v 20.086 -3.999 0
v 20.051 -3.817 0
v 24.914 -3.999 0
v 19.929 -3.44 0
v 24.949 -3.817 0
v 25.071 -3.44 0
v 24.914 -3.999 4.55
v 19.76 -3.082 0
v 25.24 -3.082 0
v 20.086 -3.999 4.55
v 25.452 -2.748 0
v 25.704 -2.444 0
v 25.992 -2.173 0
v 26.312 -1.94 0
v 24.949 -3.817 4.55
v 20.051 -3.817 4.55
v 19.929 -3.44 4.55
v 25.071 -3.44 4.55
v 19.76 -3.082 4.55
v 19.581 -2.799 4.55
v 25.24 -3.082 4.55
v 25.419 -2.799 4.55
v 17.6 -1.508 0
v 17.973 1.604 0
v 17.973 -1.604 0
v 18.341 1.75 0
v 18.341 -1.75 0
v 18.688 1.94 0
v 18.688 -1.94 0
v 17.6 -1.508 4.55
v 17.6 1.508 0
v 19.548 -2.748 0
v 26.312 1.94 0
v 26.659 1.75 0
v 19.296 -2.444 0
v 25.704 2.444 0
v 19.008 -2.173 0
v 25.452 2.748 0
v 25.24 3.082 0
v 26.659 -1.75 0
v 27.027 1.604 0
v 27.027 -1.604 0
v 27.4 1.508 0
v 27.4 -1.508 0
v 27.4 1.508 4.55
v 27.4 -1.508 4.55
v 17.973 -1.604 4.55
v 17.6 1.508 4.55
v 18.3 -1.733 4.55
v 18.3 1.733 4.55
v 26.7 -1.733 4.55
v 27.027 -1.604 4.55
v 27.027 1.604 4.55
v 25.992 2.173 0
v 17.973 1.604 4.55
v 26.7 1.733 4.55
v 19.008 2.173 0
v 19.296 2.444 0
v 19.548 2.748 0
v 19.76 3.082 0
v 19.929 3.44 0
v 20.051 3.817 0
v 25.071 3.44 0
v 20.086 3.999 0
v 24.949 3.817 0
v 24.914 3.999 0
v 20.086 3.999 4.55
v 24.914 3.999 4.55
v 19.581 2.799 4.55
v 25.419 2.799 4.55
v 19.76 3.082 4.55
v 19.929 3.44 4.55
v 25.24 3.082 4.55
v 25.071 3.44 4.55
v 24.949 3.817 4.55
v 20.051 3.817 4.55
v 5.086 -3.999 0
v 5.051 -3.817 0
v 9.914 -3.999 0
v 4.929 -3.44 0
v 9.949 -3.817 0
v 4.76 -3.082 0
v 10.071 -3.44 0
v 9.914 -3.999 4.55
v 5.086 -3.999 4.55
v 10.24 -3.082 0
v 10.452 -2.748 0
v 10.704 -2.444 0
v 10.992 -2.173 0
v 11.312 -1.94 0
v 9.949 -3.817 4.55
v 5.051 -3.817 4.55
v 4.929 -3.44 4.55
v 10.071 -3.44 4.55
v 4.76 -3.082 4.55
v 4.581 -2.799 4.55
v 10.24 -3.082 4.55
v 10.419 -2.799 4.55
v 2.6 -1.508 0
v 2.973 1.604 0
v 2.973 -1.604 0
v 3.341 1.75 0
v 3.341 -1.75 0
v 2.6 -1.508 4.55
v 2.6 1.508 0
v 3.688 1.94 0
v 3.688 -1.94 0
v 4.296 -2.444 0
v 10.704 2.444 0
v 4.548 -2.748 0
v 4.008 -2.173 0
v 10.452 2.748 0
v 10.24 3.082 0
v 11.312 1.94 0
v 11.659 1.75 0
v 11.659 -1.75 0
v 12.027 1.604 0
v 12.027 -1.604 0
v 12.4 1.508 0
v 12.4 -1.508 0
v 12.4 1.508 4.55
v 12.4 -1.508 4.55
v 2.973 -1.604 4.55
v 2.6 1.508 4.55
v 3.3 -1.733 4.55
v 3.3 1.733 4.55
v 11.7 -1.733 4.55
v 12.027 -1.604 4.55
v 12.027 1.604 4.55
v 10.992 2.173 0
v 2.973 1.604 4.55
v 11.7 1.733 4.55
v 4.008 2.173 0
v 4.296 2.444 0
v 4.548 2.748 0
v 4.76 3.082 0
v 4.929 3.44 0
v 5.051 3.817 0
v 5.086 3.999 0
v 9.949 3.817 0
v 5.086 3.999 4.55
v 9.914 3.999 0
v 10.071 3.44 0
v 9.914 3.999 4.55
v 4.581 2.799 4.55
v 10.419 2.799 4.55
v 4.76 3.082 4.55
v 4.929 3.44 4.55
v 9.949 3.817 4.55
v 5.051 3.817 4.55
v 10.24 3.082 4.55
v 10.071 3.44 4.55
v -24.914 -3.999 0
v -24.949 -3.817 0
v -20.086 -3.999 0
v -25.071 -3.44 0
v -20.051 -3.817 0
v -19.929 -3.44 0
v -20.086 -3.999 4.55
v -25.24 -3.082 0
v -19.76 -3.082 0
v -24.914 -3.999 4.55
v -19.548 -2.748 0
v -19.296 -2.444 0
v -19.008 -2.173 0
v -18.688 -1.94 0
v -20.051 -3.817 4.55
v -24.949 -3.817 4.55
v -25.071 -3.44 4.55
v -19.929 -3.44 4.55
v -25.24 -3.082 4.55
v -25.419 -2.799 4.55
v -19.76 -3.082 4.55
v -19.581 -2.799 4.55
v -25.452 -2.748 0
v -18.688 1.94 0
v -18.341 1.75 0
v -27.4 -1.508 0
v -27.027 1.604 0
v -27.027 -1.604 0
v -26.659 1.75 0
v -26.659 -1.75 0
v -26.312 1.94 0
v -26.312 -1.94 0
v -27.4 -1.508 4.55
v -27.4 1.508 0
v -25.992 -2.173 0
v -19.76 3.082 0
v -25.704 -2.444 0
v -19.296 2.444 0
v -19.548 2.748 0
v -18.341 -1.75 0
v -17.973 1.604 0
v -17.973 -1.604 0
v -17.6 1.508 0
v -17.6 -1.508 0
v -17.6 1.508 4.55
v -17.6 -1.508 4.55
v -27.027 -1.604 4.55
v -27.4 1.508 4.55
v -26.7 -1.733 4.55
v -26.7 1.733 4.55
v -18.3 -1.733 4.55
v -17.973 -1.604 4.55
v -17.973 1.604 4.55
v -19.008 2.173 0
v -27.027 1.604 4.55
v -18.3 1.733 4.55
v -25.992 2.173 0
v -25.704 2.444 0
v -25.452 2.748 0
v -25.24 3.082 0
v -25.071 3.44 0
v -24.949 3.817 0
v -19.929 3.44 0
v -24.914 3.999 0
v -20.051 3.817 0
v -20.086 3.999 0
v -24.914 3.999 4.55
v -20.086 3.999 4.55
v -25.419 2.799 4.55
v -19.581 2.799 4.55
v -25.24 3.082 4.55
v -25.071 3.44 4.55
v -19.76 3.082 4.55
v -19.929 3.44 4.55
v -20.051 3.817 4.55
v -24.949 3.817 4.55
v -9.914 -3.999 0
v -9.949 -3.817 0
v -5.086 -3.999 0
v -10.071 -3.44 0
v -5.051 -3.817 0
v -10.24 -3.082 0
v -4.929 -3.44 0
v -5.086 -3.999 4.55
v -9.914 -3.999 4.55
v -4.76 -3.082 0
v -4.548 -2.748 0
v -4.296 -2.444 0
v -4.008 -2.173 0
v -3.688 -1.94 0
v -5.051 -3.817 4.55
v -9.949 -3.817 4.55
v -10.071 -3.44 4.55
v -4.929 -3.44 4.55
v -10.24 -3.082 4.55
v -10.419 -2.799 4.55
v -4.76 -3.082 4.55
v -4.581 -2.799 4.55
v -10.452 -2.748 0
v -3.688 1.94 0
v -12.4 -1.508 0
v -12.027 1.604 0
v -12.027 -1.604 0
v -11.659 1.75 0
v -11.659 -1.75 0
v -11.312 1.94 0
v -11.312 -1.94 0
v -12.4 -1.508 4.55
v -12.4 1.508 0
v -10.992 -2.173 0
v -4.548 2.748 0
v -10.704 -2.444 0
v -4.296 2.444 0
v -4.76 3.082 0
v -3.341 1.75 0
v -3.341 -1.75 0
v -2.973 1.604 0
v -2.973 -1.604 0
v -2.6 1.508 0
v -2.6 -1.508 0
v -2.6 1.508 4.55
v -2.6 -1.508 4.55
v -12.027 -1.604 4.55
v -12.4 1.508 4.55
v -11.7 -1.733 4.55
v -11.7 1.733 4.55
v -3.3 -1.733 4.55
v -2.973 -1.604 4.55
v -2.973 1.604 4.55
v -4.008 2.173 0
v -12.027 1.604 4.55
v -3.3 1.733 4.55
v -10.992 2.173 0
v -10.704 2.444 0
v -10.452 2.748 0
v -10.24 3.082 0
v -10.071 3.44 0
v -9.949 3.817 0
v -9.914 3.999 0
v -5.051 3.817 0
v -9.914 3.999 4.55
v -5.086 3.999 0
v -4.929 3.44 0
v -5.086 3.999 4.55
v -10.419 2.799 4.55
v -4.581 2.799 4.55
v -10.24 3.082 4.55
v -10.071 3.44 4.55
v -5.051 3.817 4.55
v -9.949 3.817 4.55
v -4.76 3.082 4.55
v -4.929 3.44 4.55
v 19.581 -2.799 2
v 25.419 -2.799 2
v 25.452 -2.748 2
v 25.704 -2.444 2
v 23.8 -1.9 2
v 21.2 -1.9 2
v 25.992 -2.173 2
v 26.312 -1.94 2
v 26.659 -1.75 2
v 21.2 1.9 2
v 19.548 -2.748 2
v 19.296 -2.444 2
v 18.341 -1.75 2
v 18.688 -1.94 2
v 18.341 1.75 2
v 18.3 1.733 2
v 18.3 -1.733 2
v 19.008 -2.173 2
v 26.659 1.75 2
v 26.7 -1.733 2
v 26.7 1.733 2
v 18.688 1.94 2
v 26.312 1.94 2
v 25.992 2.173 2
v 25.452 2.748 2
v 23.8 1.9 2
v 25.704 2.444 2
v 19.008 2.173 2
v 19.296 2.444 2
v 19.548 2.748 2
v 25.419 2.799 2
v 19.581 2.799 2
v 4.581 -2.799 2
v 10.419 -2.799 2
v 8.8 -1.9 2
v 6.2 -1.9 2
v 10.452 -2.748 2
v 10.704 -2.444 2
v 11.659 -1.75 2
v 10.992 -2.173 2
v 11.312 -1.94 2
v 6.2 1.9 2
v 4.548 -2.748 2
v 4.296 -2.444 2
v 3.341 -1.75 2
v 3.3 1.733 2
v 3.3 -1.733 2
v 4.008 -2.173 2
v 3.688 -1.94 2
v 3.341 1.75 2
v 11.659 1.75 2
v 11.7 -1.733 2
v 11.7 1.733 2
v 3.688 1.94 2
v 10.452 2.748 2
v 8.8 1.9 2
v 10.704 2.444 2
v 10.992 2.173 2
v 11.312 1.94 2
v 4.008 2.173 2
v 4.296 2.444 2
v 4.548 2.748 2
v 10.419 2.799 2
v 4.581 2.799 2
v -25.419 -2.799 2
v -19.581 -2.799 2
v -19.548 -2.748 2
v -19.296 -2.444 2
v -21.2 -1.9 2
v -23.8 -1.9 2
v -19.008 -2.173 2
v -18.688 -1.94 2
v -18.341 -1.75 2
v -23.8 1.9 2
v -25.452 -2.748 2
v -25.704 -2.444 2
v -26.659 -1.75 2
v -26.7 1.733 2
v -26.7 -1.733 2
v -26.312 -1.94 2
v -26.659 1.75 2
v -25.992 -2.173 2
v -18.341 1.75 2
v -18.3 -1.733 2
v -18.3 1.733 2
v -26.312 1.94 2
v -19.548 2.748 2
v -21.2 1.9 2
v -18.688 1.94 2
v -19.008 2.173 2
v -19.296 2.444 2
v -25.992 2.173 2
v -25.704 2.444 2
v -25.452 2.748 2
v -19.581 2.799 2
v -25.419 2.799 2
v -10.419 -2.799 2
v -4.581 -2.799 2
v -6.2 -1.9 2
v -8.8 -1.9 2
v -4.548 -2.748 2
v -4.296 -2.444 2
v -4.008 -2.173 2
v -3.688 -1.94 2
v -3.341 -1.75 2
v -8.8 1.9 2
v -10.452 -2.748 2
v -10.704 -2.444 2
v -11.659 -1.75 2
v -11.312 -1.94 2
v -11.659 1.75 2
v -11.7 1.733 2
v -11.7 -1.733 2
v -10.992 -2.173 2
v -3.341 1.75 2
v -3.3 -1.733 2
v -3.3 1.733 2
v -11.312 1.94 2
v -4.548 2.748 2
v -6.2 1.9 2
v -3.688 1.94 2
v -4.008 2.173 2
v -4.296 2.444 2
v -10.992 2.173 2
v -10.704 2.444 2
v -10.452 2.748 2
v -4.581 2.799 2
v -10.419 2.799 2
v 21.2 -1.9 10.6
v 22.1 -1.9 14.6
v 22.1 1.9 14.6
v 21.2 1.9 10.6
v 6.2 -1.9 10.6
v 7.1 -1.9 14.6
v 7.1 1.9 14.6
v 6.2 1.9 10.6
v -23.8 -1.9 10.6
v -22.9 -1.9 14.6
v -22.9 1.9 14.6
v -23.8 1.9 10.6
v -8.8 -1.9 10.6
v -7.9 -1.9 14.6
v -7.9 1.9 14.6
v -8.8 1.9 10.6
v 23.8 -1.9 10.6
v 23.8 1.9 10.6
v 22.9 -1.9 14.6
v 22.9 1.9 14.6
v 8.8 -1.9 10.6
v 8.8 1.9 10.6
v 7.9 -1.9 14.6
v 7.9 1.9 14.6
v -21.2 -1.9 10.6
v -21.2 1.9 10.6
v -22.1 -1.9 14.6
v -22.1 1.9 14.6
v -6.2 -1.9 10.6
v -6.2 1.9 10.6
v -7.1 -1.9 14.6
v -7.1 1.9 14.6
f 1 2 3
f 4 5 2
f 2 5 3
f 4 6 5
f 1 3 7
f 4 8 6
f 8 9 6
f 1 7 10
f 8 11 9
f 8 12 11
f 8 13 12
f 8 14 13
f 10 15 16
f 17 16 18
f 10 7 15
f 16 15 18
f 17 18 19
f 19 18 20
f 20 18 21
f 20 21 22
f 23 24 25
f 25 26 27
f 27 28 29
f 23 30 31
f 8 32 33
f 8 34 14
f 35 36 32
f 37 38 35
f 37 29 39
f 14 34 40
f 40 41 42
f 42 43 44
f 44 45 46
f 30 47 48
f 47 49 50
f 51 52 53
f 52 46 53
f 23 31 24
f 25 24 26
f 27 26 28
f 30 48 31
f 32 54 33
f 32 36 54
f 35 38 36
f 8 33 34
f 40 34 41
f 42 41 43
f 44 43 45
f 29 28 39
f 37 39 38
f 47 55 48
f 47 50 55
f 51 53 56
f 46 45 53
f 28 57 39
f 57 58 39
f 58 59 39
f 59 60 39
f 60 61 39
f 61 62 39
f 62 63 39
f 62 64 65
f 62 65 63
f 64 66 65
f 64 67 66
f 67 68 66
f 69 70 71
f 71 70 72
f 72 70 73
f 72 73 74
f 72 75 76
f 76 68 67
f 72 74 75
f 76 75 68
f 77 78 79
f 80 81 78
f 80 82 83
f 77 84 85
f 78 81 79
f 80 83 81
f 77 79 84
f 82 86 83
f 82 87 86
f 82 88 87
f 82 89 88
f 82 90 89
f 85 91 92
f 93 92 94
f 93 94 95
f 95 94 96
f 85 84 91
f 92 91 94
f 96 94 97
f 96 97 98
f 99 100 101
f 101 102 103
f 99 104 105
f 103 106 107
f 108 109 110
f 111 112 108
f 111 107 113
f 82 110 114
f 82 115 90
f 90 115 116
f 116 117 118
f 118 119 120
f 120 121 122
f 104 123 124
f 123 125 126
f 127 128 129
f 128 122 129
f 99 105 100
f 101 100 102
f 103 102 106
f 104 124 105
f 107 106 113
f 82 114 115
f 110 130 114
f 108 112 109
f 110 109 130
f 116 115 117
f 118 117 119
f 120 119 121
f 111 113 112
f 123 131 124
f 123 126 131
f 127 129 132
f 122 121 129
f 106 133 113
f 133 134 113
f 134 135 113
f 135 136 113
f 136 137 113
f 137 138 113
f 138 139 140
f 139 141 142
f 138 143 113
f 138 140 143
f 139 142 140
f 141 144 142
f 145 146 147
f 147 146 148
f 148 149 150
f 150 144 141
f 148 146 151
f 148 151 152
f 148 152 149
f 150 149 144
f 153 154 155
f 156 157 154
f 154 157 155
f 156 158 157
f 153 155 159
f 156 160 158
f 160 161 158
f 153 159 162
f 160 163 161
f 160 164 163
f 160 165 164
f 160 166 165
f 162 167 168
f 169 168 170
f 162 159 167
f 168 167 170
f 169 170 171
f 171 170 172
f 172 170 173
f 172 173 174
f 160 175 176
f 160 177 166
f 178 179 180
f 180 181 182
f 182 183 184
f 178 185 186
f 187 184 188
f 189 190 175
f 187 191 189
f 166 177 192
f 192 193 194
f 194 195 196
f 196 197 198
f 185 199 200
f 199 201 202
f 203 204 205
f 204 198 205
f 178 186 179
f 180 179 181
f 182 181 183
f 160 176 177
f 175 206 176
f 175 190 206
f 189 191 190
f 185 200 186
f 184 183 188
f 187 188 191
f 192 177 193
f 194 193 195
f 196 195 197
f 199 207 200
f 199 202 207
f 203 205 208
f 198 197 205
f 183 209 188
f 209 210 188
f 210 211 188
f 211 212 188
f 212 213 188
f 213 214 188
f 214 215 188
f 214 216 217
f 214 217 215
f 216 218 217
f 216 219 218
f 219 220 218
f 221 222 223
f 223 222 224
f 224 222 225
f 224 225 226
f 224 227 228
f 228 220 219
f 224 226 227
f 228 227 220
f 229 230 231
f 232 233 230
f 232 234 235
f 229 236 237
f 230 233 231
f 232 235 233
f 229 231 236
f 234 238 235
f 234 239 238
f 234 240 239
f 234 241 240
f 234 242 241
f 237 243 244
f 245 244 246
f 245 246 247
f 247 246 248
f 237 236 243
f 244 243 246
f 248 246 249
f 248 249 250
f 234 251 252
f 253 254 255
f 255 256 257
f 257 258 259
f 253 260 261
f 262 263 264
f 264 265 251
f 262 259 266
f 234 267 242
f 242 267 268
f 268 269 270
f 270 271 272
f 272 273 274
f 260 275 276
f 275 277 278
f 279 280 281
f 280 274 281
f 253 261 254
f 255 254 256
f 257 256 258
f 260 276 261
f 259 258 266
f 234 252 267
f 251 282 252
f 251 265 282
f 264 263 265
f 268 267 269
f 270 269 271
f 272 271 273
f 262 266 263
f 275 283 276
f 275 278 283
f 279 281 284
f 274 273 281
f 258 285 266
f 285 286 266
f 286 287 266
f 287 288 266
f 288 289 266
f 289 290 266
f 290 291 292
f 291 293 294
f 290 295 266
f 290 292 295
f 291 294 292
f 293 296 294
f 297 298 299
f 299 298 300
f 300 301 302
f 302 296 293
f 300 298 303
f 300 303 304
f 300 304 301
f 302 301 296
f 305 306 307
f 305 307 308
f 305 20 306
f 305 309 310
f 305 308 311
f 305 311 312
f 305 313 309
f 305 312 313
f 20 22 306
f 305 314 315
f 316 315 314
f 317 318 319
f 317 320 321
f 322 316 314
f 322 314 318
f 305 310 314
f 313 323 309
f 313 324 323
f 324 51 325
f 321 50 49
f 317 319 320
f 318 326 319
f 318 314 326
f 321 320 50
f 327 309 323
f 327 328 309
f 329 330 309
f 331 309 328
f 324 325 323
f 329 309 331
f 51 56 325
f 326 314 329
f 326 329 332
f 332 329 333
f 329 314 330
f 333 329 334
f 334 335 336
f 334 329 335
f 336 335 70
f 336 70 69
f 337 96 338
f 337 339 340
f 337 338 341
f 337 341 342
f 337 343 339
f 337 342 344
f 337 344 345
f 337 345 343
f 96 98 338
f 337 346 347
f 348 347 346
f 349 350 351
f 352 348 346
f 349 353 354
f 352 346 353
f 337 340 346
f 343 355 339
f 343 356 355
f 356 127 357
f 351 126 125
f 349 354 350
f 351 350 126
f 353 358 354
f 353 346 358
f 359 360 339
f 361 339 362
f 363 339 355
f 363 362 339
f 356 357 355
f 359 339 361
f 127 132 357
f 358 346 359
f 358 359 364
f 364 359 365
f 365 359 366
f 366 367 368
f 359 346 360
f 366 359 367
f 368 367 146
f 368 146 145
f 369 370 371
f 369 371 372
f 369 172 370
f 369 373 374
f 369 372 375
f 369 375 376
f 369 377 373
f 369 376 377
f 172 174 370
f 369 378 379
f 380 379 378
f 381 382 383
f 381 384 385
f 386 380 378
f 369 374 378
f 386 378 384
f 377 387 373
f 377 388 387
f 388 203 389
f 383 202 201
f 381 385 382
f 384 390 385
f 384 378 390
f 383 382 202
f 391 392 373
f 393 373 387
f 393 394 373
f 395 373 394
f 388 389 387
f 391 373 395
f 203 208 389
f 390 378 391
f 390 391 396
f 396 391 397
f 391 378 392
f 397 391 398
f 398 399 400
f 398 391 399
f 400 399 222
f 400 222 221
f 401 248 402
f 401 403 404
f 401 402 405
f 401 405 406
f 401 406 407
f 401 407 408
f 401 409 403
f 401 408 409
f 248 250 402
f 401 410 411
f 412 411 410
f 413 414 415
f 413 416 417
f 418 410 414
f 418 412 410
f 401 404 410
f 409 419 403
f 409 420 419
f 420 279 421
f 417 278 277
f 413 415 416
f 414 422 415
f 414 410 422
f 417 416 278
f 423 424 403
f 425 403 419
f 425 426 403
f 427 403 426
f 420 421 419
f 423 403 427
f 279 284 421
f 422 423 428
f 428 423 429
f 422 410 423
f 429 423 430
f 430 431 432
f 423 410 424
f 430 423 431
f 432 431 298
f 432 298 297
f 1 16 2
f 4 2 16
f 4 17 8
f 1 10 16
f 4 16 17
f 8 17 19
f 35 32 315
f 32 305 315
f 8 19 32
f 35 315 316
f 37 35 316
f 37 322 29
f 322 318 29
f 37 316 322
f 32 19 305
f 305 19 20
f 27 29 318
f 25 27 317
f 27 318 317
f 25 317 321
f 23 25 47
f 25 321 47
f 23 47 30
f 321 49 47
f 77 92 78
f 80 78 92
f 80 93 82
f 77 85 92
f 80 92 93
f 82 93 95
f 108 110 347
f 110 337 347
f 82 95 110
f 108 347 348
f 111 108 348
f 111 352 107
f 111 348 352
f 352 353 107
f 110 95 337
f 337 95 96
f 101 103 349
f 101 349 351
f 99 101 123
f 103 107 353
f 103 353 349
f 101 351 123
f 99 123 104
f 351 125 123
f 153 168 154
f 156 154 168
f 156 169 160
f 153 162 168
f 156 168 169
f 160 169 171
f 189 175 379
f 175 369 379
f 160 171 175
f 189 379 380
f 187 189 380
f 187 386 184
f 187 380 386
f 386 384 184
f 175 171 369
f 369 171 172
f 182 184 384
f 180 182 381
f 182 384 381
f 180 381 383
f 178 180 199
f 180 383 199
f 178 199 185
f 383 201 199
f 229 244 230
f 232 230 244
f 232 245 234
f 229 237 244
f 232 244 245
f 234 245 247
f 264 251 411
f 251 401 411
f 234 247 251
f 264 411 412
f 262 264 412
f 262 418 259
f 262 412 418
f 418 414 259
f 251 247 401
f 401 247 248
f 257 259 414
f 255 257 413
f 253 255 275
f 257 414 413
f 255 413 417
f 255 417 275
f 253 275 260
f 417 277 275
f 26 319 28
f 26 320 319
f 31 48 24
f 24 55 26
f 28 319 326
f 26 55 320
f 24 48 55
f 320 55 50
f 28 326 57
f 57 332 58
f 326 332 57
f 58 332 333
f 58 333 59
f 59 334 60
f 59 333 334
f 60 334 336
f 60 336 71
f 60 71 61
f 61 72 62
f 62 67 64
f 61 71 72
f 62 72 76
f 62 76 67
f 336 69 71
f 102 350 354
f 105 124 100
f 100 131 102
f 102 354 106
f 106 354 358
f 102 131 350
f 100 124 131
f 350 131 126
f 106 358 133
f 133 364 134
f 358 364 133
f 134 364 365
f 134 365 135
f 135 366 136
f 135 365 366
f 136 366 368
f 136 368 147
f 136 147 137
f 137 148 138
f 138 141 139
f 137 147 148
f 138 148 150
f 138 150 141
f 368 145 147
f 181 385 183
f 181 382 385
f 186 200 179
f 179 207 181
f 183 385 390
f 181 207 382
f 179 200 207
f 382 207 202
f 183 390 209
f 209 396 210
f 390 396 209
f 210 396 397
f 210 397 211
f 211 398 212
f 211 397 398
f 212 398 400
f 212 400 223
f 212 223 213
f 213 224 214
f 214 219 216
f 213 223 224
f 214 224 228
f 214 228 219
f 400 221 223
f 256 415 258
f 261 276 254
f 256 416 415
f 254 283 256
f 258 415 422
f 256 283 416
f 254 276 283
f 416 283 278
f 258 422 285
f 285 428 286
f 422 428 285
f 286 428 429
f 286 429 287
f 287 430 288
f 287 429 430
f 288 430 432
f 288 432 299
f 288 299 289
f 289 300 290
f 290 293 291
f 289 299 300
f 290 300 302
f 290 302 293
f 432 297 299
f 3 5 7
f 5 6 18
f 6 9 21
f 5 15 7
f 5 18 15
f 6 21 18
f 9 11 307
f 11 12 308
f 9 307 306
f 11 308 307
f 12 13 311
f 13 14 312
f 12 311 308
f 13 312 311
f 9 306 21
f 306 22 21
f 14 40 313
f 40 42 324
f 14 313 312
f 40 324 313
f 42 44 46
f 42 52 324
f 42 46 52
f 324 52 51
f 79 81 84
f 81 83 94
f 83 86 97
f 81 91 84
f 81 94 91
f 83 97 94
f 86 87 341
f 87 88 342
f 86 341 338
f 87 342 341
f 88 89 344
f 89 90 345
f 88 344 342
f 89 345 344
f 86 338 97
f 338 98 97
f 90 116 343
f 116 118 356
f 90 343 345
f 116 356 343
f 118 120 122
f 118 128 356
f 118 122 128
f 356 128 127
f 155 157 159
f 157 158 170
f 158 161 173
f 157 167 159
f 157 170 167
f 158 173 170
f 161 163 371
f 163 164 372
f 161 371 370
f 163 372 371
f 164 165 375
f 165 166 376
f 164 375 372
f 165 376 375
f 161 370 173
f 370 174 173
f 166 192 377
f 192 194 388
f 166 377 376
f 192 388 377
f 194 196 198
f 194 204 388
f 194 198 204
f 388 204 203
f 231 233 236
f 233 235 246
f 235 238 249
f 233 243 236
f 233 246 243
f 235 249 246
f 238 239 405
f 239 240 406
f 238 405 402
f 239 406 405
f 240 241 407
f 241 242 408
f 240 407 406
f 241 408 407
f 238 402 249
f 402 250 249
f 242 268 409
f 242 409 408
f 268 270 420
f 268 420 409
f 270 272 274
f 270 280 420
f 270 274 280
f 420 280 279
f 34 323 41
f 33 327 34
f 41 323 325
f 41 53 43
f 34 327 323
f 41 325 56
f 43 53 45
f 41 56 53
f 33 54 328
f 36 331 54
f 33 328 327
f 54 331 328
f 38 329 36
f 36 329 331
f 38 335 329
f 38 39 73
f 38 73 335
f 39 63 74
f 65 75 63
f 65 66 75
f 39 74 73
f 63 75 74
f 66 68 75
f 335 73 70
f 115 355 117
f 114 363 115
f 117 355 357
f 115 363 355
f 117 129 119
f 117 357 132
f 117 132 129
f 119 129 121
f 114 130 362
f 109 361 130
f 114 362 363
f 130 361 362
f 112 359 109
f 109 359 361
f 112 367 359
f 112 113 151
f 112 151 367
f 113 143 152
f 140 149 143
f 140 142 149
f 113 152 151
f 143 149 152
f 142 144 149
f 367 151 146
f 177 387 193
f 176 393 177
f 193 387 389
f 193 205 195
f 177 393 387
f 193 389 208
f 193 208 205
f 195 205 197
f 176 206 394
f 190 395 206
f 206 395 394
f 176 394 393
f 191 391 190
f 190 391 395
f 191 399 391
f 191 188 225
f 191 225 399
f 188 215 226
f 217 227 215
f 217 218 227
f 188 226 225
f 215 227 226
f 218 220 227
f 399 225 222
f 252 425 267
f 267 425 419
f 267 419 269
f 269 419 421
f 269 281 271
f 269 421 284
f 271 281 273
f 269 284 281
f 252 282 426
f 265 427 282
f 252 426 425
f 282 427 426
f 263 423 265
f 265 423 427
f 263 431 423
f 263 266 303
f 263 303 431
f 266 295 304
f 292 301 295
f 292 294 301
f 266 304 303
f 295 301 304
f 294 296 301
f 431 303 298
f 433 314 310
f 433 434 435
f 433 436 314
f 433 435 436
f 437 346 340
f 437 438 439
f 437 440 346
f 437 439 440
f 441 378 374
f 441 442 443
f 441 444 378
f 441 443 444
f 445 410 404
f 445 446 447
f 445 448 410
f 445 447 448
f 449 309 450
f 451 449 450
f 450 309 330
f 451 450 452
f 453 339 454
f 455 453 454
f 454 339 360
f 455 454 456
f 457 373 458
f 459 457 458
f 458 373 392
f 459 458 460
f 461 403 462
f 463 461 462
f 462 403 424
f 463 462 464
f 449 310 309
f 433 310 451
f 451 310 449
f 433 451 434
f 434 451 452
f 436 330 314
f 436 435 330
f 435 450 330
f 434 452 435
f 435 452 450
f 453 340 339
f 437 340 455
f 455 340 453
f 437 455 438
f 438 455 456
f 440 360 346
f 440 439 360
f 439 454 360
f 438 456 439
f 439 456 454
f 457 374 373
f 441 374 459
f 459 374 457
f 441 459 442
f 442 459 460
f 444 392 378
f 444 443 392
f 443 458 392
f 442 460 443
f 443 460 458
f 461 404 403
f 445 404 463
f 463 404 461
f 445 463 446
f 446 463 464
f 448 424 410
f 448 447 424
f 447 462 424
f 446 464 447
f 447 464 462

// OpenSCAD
$fn = 50;

difference() {
	union() {
		translate(v = [-22.5, 0, 0]) {
			rotate(a = [0, 0, 0]) {
				difference() {
					union() {
						translate(v = [0, 0, 0]) {
							rotate(a = [0, 0, 0]) {
								difference() {
									union() {
										translate(v = [0, 0, 0]) {
											rotate(a = [0, 0, 0]) {
												difference() {
													union() {
														hull() {
															translate(v = [-4.15, 3.25, 0]) {
																cylinder(h = 4.55, r = 0.75);
															}
															translate(v = [4.15, 3.25, 0]) {
																cylinder(h = 4.55, r = 0.75);
															}
															translate(v = [-4.15, -3.25, 0]) {
																cylinder(h = 4.55, r = 0.75);
															}
															translate(v = [4.15, -3.25, 0]) {
																cylinder(h = 4.55, r = 0.75);
															}
														}
													}
													union() {
														translate(v = [0, 0, 2.0]) {
															hull() {
																translate(v = [-3.9000000000000004, 2.5, 0]) {
																	cylinder(h = 2.65, r = 0.3);
																}
																translate(v = [3.9000000000000004, 2.5, 0]) {
																	cylinder(h = 2.65, r = 0.3);
																}
																translate(v = [-3.9000000000000004, -2.5, 0]) {
																	cylinder(h = 2.65, r = 0.3);
																}
																translate(v = [3.9000000000000004, -2.5, 0]) {
																	cylinder(h = 2.65, r = 0.3);
																}
															}
														}
														translate(v = [-5.5, -4.6, -0.1]) {
															cylinder(h = 4.75, r = 3.15);
														}
														translate(v = [-5.5, 4.6, -0.1]) {
															cylinder(h = 4.75, r = 3.15);
														}
														translate(v = [5.5, -4.6, -0.1]) {
															cylinder(h = 4.75, r = 3.15);
														}
														translate(v = [5.5, 4.6, -0.1]) {
															cylinder(h = 4.75, r = 3.15);
														}
													}
												}
											}
										}
										translate(v = [0, 0, 0]) {
											rotate(a = [0, 0, 0]) {
												difference() {
													union() {
														translate(v = [-1.4000000000000001, -1.9, 1.95]) {
															cube(size = [2.8000000000000003, 3.8, 12.65]);
														}
													}
													union() {
														translate(v = [0, 2.0, 0]) {
															rotate(a = [90, 0, 0]) {
																linear_extrude(height = 4.0) {
																	polygon(points = [[-1.3, 1.85], [-1.3, 10.6], [-0.4, 14.6], [-0.4, 14.799999999999999], [-1.6, 14.799999999999999], [-1.6, 1.85]]);
																}
															}
														}
														translate(v = [0, 2.0, 0]) {
															rotate(a = [90, 0, 0]) {
																linear_extrude(height = 4.0) {
																	polygon(points = [[1.3, 1.85], [1.3, 10.6], [0.4, 14.6], [0.4, 14.799999999999999], [1.6, 14.799999999999999], [1.6, 1.85]]);
																}
															}
														}
													}
												}
											}
										}
									}
									union();
								}
							}
						}
					}
					union();
				}
			}
		}
		translate(v = [-7.5, 0, 0]) {
			rotate(a = [0, 0, 0]) {
				difference() {
					union() {
						translate(v = [0, 0, 0]) {
							rotate(a = [0, 0, 0]) {
								difference() {
									union() {
										translate(v = [0, 0, 0]) {
											rotate(a = [0, 0, 0]) {
												difference() {
													union() {
														hull() {
															translate(v = [-4.15, 3.25, 0]) {
																cylinder(h = 4.55, r = 0.75);
															}
															translate(v = [4.15, 3.25, 0]) {
																cylinder(h = 4.55, r = 0.75);
															}
															translate(v = [-4.15, -3.25, 0]) {
																cylinder(h = 4.55, r = 0.75);
															}
															translate(v = [4.15, -3.25, 0]) {
																cylinder(h = 4.55, r = 0.75);
															}
														}
													}
													union() {
														translate(v = [0, 0, 2.0]) {
															hull() {
																translate(v = [-3.9000000000000004, 2.5, 0]) {
																	cylinder(h = 2.65, r = 0.3);
																}
																translate(v = [3.9000000000000004, 2.5, 0]) {
																	cylinder(h = 2.65, r = 0.3);
																}
																translate(v = [-3.9000000000000004, -2.5, 0]) {
																	cylinder(h = 2.65, r = 0.3);
																}
																translate(v = [3.9000000000000004, -2.5, 0]) {
																	cylinder(h = 2.65, r = 0.3);
																}
															}
														}
														translate(v = [-5.5, -4.6, -0.1]) {
															cylinder(h = 4.75, r = 3.15);
														}
														translate(v = [-5.5, 4.6, -0.1]) {
															cylinder(h = 4.75, r = 3.15);
														}
														translate(v = [5.5, -4.6, -0.1]) {
															cylinder(h = 4.75, r = 3.15);
														}
														translate(v = [5.5, 4.6, -0.1]) {
															cylinder(h = 4.75, r = 3.15);
														}
													}
												}
											}
										}
										translate(v = [0, 0, 0]) {
											rotate(a = [0, 0, 0]) {
												difference() {
													union() {
														translate(v = [-1.4000000000000001, -1.9, 1.95]) {
															cube(size = [2.8000000000000003, 3.8, 12.65]);
														}
													}
													union() {
														translate(v = [0, 2.0, 0]) {
															rotate(a = [90, 0, 0]) {
																linear_extrude(height = 4.0) {
																	polygon(points = [[-1.3, 1.85], [-1.3, 10.6], [-0.4, 14.6], [-0.4, 14.799999999999999], [-1.6, 14.799999999999999], [-1.6, 1.85]]);
																}
															}
														}
														translate(v = [0, 2.0, 0]) {
															rotate(a = [90, 0, 0]) {
																linear_extrude(height = 4.0) {
																	polygon(points = [[1.3, 1.85], [1.3, 10.6], [0.4, 14.6], [0.4, 14.799999999999999], [1.6, 14.799999999999999], [1.6, 1.85]]);
																}
															}
														}
													}
												}
											}
										}
									}
									union();
								}
							}
						}
					}
					union();
				}
			}
		}
		translate(v = [7.5, 0, 0]) {
			rotate(a = [0, 0, 0]) {
				difference() {
					union() {
						translate(v = [0, 0, 0]) {
							rotate(a = [0, 0, 0]) {
								difference() {
									union() {
										translate(v = [0, 0, 0]) {
											rotate(a = [0, 0, 0]) {
												difference() {
													union() {
														hull() {
															translate(v = [-4.15, 3.25, 0]) {
																cylinder(h = 4.55, r = 0.75);
															}
															translate(v = [4.15, 3.25, 0]) {
																cylinder(h = 4.55, r = 0.75);
															}
															translate(v = [-4.15, -3.25, 0]) {
																cylinder(h = 4.55, r = 0.75);
															}
															translate(v = [4.15, -3.25, 0]) {
																cylinder(h = 4.55, r = 0.75);
															}
														}
													}
													union() {
														translate(v = [0, 0, 2.0]) {
															hull() {
																translate(v = [-3.9000000000000004, 2.5, 0]) {
																	cylinder(h = 2.65, r = 0.3);
																}
																translate(v = [3.9000000000000004, 2.5, 0]) {
																	cylinder(h = 2.65, r = 0.3);
																}
																translate(v = [-3.9000000000000004, -2.5, 0]) {
																	cylinder(h = 2.65, r = 0.3);
																}
																translate(v = [3.9000000000000004, -2.5, 0]) {
																	cylinder(h = 2.65, r = 0.3);
																}
															}
														}
														translate(v = [-5.5, -4.6, -0.1]) {
															cylinder(h = 4.75, r = 3.15);
														}
														translate(v = [-5.5, 4.6, -0.1]) {
															cylinder(h = 4.75, r = 3.15);
														}
														translate(v = [5.5, -4.6, -0.1]) {
															cylinder(h = 4.75, r = 3.15);
														}
														translate(v = [5.5, 4.6, -0.1]) {
															cylinder(h = 4.75, r = 3.15);
														}
													}
												}
											}
										}
										translate(v = [0, 0, 0]) {
											rotate(a = [0, 0, 0]) {
												difference() {
													union() {
														translate(v = [-1.4000000000000001, -1.9, 1.95]) {
															cube(size = [2.8000000000000003, 3.8, 12.65]);
														}
													}
													union() {
														translate(v = [0, 2.0, 0]) {
															rotate(a = [90, 0, 0]) {
																linear_extrude(height = 4.0) {
																	polygon(points = [[-1.3, 1.85], [-1.3, 10.6], [-0.4, 14.6], [-0.4, 14.799999999999999], [-1.6, 14.799999999999999], [-1.6, 1.85]]);
																}
															}
														}
														translate(v = [0, 2.0, 0]) {
															rotate(a = [90, 0, 0]) {
																linear_extrude(height = 4.0) {
																	polygon(points = [[1.3, 1.85], [1.3, 10.6], [0.4, 14.6], [0.4, 14.799999999999999], [1.6, 14.799999999999999], [1.6, 1.85]]);
																}
															}
														}
													}
												}
											}
										}
									}
									union();
								}
							}
						}
					}
					union();
				}
			}
		}
		translate(v = [22.5, 0, 0]) {
			rotate(a = [0, 0, 0]) {
				difference() {
					union() {
						translate(v = [0, 0, 0]) {
							rotate(a = [0, 0, 0]) {
								difference() {
									union() {
										translate(v = [0, 0, 0]) {
											rotate(a = [0, 0, 0]) {
												difference() {
													union() {
														hull() {
															translate(v = [-4.15, 3.25, 0]) {
																cylinder(h = 4.55, r = 0.75);
															}
															translate(v = [4.15, 3.25, 0]) {
																cylinder(h = 4.55, r = 0.75);
															}
															translate(v = [-4.15, -3.25, 0]) {
																cylinder(h = 4.55, r = 0.75);
															}
															translate(v = [4.15, -3.25, 0]) {
																cylinder(h = 4.55, r = 0.75);
															}
														}
													}
													union() {
														translate(v = [0, 0, 2.0]) {
															hull() {
																translate(v = [-3.9000000000000004, 2.5, 0]) {
																	cylinder(h = 2.65, r = 0.3);
																}
																translate(v = [3.9000000000000004, 2.5, 0]) {
																	cylinder(h = 2.65, r = 0.3);
																}
																translate(v = [-3.9000000000000004, -2.5, 0]) {
																	cylinder(h = 2.65, r = 0.3);
																}
																translate(v = [3.9000000000000004, -2.5, 0]) {
																	cylinder(h = 2.65, r = 0.3);
																}
															}
														}
														translate(v = [-5.5, -4.6, -0.1]) {
															cylinder(h = 4.75, r = 3.15);
														}
														translate(v = [-5.5, 4.6, -0.1]) {
															cylinder(h = 4.75, r = 3.15);
														}
														translate(v = [5.5, -4.6, -0.1]) {
															cylinder(h = 4.75, r = 3.15);
														}
														translate(v = [5.5, 4.6, -0.1]) {
															cylinder(h = 4.75, r = 3.15);
														}
													}
												}
											}
										}
										translate(v = [0, 0, 0]) {
											rotate(a = [0, 0, 0]) {
												difference() {
													union() {
														translate(v = [-1.4000000000000001, -1.9, 1.95]) {
															cube(size = [2.8000000000000003, 3.8, 12.65]);
														}
													}
													union() {
														translate(v = [0, 2.0, 0]) {
															rotate(a = [90, 0, 0]) {
																linear_extrude(height = 4.0) {
																	polygon(points = [[-1.3, 1.85], [-1.3, 10.6], [-0.4, 14.6], [-0.4, 14.799999999999999], [-1.6, 14.799999999999999], [-1.6, 1.85]]);
																}
															}
														}
														translate(v = [0, 2.0, 0]) {
															rotate(a = [90, 0, 0]) {
																linear_extrude(height = 4.0) {
																	polygon(points = [[1.3, 1.85], [1.3, 10.6], [0.4, 14.6], [0.4, 14.799999999999999], [1.6, 14.799999999999999], [1.6, 1.85]]);
																}
															}
														}
													}
												}
											}
										}
									}
									union();
								}
							}
						}
					}
					union();
				}
			}
		}
	}
	union();
}
